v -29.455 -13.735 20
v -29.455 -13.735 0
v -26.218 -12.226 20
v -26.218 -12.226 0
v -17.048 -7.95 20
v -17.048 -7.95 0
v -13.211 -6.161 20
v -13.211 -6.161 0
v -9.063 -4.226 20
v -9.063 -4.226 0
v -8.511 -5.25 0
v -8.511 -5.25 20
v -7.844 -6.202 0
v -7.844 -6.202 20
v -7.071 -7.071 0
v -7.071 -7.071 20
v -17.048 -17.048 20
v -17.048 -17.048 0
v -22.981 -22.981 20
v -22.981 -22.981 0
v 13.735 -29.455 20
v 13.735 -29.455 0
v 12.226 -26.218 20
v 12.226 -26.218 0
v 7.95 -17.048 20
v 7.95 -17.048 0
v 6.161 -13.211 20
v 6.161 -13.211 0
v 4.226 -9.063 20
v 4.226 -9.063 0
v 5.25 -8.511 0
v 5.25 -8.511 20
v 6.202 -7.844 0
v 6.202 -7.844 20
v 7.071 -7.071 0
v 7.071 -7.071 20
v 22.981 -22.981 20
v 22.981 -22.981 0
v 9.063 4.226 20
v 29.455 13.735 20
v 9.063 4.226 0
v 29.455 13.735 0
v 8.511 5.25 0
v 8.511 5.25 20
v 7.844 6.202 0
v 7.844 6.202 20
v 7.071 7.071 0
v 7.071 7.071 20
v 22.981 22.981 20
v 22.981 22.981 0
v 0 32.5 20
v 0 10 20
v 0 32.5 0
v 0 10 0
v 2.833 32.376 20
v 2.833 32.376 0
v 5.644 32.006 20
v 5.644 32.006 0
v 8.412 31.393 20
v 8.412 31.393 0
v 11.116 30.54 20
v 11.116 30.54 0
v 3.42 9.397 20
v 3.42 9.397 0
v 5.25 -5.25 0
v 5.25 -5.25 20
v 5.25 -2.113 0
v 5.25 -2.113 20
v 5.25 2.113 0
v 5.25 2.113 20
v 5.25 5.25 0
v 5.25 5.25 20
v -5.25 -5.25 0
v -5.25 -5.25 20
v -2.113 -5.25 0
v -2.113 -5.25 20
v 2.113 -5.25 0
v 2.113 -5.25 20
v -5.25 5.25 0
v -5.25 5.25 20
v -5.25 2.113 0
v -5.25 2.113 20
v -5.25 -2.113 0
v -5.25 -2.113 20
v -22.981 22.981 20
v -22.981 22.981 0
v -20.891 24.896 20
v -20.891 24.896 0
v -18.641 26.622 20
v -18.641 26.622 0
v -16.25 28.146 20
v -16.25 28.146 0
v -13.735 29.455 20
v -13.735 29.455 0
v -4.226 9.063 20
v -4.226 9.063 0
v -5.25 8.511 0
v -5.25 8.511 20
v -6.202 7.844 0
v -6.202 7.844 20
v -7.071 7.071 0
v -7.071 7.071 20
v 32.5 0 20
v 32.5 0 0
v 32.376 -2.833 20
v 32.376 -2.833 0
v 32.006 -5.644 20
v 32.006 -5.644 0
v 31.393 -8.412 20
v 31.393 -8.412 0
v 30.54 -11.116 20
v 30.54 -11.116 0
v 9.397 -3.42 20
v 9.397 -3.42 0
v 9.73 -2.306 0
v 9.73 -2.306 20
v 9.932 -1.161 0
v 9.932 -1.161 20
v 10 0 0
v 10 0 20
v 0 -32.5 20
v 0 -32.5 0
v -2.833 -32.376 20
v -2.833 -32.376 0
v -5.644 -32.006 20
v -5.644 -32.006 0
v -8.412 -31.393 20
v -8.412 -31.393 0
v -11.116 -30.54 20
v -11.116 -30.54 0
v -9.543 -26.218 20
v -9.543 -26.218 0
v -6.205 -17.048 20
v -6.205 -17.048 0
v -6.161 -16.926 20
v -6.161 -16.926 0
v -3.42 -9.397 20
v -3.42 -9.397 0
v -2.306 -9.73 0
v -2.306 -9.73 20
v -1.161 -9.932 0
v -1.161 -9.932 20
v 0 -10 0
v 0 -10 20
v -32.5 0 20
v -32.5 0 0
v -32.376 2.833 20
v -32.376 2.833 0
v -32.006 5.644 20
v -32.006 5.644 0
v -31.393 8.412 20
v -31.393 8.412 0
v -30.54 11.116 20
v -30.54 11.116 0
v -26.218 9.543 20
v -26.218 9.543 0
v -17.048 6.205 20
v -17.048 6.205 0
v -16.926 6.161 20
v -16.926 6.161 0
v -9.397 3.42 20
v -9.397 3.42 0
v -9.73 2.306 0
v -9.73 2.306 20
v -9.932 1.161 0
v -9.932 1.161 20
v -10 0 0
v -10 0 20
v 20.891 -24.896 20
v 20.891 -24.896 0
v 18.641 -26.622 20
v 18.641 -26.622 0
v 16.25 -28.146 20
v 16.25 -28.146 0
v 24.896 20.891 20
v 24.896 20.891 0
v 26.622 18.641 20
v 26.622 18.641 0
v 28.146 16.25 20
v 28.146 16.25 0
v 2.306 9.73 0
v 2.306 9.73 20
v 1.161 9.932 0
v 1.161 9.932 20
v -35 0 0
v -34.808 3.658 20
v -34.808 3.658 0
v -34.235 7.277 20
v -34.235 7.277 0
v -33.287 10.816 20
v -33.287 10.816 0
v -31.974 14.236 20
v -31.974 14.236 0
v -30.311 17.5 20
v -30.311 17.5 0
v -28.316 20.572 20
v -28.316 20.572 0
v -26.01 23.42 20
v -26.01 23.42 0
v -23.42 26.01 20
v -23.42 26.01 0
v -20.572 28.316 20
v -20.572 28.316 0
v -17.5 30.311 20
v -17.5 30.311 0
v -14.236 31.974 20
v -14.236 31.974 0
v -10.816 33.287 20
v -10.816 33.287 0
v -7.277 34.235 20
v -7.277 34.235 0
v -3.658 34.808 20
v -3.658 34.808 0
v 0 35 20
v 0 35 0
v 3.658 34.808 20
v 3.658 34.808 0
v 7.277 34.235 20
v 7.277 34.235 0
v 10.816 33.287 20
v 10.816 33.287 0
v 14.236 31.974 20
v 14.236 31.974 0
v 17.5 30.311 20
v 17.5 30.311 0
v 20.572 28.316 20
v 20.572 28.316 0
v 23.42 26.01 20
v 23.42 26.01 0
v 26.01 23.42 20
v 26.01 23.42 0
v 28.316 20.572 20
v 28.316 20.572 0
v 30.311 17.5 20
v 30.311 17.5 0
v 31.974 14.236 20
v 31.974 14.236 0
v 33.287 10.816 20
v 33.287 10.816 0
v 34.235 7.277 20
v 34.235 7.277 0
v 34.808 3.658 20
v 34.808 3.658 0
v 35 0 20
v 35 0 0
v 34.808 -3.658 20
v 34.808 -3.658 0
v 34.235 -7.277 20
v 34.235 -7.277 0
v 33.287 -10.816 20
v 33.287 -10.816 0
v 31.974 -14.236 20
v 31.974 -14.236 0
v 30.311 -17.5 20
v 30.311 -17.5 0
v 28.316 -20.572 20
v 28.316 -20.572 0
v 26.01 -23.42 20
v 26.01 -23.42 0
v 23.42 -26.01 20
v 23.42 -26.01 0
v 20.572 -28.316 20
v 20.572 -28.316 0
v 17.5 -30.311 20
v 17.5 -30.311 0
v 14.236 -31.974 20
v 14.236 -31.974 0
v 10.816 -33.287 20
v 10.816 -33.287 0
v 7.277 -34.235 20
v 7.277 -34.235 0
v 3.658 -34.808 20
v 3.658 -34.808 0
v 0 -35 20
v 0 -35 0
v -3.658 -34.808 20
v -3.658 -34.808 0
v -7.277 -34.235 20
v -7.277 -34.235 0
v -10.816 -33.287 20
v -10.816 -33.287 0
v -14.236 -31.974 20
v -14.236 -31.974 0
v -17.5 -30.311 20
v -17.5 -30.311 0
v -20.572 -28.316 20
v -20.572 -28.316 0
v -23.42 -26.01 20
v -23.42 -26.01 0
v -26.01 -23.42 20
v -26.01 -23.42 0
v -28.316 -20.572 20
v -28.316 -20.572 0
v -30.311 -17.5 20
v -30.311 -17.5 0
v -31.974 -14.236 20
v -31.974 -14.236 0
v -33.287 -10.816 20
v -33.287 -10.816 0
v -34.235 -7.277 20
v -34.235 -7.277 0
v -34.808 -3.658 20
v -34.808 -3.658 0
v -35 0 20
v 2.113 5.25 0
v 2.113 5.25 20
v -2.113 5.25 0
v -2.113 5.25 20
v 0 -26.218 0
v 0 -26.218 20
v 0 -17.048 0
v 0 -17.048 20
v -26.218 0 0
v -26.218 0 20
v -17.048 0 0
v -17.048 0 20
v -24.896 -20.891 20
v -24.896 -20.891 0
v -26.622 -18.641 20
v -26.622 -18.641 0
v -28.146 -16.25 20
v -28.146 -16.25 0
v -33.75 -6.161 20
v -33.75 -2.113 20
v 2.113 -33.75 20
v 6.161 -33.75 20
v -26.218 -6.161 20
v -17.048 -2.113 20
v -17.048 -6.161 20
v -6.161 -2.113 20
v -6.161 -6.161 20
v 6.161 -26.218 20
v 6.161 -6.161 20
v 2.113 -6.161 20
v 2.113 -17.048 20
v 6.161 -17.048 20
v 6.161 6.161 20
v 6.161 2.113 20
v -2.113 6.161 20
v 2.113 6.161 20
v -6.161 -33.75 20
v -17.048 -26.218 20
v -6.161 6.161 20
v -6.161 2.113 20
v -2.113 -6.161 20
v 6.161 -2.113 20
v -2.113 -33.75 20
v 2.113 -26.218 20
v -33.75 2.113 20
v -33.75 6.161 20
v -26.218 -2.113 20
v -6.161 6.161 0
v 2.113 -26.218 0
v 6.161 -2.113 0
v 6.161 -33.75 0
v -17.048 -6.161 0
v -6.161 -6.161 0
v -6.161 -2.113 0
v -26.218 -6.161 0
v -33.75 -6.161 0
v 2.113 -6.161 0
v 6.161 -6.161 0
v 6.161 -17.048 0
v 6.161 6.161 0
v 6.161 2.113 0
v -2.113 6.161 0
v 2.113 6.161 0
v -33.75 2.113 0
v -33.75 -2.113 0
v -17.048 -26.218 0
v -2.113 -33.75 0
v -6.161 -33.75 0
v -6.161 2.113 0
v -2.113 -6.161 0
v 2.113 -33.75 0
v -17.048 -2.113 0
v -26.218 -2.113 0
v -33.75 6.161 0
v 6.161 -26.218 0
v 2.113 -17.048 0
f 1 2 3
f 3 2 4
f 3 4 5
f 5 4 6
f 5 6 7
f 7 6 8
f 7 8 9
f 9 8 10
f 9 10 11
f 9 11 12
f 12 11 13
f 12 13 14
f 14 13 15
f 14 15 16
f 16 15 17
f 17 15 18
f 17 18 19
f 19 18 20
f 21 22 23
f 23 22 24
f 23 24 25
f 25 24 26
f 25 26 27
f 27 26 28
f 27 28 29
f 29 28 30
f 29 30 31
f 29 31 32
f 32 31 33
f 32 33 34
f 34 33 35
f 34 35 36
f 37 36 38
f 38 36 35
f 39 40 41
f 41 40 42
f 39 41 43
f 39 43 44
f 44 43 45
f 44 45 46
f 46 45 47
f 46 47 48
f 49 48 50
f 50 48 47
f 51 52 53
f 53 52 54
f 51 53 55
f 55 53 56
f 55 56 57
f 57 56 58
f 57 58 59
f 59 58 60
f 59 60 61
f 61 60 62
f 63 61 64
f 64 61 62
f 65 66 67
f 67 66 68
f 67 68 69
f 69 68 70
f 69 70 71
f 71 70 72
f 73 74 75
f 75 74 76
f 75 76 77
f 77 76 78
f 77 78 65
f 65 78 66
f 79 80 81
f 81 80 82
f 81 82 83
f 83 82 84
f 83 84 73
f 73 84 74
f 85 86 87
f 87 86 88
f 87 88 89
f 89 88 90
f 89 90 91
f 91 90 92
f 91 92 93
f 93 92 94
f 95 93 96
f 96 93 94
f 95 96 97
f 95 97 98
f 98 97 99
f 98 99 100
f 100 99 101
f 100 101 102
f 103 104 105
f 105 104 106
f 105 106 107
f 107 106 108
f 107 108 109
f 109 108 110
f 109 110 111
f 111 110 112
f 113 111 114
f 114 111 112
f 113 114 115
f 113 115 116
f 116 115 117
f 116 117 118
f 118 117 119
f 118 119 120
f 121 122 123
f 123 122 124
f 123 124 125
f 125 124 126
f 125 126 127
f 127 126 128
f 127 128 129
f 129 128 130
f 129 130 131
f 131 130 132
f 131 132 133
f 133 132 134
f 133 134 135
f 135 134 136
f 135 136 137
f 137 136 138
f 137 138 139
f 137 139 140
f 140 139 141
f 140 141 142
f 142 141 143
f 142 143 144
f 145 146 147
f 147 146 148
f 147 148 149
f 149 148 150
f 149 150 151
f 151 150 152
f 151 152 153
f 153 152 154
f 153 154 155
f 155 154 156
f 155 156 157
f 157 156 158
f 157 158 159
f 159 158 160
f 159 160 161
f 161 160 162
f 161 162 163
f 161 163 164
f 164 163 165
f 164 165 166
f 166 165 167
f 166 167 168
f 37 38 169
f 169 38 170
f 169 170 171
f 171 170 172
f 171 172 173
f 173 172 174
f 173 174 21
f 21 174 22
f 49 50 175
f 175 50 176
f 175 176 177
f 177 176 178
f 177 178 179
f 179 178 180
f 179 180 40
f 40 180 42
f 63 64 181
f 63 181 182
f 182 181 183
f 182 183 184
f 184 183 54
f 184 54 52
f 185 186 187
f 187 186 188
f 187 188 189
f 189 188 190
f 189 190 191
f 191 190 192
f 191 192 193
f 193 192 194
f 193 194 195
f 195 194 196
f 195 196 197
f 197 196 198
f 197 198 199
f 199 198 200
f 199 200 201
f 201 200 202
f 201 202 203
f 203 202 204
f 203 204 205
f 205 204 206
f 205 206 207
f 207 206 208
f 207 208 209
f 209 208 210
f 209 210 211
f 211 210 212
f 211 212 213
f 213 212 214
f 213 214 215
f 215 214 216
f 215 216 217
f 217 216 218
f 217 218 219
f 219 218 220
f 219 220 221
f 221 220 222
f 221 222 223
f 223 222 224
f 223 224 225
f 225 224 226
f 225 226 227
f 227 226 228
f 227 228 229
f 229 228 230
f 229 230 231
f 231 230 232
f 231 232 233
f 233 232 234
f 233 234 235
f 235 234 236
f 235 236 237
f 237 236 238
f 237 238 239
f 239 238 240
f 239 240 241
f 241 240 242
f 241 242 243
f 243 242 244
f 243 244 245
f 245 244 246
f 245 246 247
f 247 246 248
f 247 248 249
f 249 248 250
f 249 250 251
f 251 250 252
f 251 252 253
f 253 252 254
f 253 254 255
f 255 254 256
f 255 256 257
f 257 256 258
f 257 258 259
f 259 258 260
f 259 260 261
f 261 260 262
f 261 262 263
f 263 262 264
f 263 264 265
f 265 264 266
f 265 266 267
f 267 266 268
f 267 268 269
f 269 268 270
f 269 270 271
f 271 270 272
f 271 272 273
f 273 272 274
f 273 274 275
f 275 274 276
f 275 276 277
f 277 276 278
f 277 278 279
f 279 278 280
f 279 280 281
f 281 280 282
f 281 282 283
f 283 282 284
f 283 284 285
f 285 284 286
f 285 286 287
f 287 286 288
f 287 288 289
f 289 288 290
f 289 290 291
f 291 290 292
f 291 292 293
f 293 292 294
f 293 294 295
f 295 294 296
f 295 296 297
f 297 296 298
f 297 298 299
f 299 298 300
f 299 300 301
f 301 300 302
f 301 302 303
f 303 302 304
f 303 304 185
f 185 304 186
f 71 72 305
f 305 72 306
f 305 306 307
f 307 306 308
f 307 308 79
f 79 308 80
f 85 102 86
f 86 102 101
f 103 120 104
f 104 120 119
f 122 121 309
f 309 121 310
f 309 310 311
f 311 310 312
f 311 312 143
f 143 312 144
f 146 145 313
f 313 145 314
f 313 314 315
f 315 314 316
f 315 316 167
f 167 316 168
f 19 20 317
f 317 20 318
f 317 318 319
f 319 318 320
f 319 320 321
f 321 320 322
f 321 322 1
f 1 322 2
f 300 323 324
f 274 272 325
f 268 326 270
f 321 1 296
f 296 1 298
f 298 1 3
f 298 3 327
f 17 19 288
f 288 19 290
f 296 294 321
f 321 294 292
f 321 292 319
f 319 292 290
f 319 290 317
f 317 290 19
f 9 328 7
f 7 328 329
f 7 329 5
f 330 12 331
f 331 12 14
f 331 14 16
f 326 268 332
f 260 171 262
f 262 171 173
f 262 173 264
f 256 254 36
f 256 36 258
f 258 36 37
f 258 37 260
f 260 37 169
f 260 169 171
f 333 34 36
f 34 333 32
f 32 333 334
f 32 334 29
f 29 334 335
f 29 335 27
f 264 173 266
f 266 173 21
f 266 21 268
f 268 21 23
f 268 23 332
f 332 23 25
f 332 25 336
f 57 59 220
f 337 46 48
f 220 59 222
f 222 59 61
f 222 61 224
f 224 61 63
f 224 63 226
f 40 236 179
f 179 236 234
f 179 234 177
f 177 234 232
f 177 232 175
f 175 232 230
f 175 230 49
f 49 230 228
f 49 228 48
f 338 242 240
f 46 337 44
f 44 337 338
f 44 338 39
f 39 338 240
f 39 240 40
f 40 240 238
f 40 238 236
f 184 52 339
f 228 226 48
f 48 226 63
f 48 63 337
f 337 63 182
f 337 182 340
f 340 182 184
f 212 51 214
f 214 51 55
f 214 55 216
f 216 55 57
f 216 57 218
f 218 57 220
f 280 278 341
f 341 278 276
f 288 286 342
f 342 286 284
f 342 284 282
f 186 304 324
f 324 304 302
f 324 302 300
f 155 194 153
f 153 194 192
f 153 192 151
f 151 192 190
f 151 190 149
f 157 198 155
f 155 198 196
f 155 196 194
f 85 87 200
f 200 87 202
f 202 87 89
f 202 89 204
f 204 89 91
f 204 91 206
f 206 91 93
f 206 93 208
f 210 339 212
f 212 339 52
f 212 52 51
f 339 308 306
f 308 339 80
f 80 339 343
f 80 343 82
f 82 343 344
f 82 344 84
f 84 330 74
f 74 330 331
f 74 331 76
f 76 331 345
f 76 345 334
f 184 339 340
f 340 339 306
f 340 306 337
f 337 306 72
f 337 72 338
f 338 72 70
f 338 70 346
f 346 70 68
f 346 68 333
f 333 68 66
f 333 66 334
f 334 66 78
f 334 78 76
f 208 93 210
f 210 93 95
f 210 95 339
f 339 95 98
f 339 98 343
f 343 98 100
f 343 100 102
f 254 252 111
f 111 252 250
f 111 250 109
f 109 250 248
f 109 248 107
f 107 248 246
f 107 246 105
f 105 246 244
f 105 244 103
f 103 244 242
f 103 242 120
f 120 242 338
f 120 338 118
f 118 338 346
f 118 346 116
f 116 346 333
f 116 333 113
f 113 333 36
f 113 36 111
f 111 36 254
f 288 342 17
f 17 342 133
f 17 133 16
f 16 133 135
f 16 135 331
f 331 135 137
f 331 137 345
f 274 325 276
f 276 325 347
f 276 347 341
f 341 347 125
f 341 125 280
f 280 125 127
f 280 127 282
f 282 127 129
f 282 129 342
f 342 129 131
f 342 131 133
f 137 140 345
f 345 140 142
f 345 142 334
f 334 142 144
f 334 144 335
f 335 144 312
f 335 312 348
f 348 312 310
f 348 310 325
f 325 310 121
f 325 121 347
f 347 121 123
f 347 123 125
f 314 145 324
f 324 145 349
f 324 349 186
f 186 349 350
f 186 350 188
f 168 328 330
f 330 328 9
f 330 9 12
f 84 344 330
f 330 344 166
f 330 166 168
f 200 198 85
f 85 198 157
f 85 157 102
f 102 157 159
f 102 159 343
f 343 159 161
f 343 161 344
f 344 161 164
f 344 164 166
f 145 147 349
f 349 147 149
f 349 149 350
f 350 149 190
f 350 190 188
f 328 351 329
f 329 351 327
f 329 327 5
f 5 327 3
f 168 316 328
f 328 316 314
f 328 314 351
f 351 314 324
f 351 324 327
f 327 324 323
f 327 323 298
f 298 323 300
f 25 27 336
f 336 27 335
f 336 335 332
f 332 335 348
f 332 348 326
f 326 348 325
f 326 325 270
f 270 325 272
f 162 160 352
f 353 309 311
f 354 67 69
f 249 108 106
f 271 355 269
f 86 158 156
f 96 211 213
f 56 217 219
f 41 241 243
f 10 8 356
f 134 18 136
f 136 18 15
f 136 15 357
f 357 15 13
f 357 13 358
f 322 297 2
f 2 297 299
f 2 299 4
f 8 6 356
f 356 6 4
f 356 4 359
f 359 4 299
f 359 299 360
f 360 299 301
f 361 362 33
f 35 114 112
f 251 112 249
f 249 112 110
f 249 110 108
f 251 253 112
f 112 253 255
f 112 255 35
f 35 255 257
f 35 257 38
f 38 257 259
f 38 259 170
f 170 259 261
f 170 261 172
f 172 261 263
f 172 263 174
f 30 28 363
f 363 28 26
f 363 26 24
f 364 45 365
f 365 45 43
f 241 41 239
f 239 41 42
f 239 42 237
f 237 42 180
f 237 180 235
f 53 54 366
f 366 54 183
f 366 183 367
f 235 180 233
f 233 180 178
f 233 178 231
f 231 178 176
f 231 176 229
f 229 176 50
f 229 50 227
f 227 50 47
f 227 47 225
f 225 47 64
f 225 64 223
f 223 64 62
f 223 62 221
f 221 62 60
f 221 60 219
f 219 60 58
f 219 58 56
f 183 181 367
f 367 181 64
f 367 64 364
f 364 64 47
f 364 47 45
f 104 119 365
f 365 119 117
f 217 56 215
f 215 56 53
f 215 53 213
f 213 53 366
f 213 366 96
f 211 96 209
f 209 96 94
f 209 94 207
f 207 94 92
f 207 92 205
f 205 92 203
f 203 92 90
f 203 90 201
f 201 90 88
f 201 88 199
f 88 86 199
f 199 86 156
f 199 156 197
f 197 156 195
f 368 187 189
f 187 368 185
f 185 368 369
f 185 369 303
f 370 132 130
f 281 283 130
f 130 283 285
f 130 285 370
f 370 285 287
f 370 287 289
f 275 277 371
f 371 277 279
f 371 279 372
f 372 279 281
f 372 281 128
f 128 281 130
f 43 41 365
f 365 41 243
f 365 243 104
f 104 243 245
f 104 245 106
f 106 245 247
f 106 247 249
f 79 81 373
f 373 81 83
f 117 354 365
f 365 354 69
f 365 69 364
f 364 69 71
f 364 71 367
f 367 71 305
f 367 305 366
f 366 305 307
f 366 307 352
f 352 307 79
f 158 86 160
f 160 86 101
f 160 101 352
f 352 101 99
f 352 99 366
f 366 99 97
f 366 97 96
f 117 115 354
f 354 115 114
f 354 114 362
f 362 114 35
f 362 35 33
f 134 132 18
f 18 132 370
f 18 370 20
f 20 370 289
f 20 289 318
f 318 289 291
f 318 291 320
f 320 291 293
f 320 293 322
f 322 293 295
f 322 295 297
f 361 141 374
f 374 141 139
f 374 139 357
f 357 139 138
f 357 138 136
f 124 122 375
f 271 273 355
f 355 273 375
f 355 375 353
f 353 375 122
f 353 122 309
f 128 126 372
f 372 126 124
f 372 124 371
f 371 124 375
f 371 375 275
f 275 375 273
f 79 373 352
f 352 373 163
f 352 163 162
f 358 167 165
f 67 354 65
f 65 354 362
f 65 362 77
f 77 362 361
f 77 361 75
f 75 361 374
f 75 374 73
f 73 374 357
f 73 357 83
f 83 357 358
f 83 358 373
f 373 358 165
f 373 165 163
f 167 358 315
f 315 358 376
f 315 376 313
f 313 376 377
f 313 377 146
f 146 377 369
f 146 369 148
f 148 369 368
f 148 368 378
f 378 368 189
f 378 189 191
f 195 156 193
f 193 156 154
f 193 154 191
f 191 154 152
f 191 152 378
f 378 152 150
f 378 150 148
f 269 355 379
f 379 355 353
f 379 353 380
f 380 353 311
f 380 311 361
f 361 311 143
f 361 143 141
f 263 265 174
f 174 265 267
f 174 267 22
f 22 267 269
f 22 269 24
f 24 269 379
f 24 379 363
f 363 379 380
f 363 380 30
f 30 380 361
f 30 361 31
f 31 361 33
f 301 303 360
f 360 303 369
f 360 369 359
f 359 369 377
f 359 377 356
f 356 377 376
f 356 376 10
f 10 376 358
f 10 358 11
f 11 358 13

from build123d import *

# Parameters (mm, degrees)
SKETCH_2_R      = 35
SKETCH_2_W      = 10.5
SKETCH_2_H      = 10.5
EXTRUDE_1_DEPTH = 20


with BuildPart() as part:
    # Эскиз2 → Бобышка-Вытянуть1 (new body)
    with BuildSketch(Plane.XY):
        Circle(SKETCH_2_R)
        with BuildLine():
            ThreePointArc((-30.540010176, 11.115654658), (-32.006251973, 5.643565774), (-32.5, 0))
            Line((-32.5, 0), (-10, 0))
            ThreePointArc((-10, 0), (-9.84807753, 1.736481777), (-9.396926208, 3.420201433))
            Line((-9.396926208, 3.420201433), (-30.540010176, 11.115654658))
        make_face(mode=Mode.SUBTRACT)
        with BuildLine():
            ThreePointArc((-11.115654658, -30.540010176), (-5.643565774, -32.006251973), (0, -32.5))
            Line((0, -32.5), (0, -10))
            ThreePointArc((0, -10), (-1.736481777, -9.84807753), (-3.420201433, -9.396926208))
            Line((-3.420201433, -9.396926208), (-11.115654658, -30.540010176))
        make_face(mode=Mode.SUBTRACT)
        with BuildLine():
            ThreePointArc((30.540010176, -11.115654658), (32.006251973, -5.643565774), (32.5, 0))
            Line((32.5, 0), (10, 0))
            ThreePointArc((10, 0), (9.84807753, -1.736481777), (9.396926208, -3.420201433))
            Line((9.396926208, -3.420201433), (30.540010176, -11.115654658))
        make_face(mode=Mode.SUBTRACT)
        with BuildLine():
            ThreePointArc((-13.735093507, 29.455003079), (-18.641234181, 26.622441439), (-22.980970389, 22.980970389))
            Line((-22.980970389, 22.980970389), (-7.071067812, 7.071067812))
            ThreePointArc((-7.071067812, 7.071067812), (-5.735764364, 8.191520443), (-4.226182617, 9.06307787))
            Line((-4.226182617, 9.06307787), (-13.735093507, 29.455003079))
        make_face(mode=Mode.SUBTRACT)
        Rectangle(SKETCH_2_W, SKETCH_2_H, mode=Mode.SUBTRACT)
        with BuildLine():
            Line((0, 10), (0, 32.5))
            ThreePointArc((0, 32.5), (5.643565774, 32.006251973), (11.115654658, 30.540010176))
            Line((11.115654658, 30.540010176), (3.420201433, 9.396926208))
            ThreePointArc((3.420201433, 9.396926208), (1.736481777, 9.84807753), (0, 10))
        make_face(mode=Mode.SUBTRACT)
        with BuildLine():
            Line((9.06307787, 4.226182617), (29.455003079, 13.735093507))
            ThreePointArc((29.455003079, 13.735093507), (26.622441439, 18.641234181), (22.980970389, 22.980970389))
            Line((22.980970389, 22.980970389), (7.071067812, 7.071067812))
            ThreePointArc((7.071067812, 7.071067812), (8.191520443, 5.735764364), (9.06307787, 4.226182617))
        make_face(mode=Mode.SUBTRACT)
        with BuildLine():
            Line((4.226182617, -9.06307787), (13.735093507, -29.455003079))
            ThreePointArc((13.735093507, -29.455003079), (18.641234181, -26.622441439), (22.980970389, -22.980970389))
            Line((22.980970389, -22.980970389), (7.071067812, -7.071067812))
            ThreePointArc((7.071067812, -7.071067812), (5.735764364, -8.191520443), (4.226182617, -9.06307787))
        make_face(mode=Mode.SUBTRACT)
        with BuildLine():
            Line((-9.06307787, -4.226182617), (-29.455003079, -13.735093507))
            ThreePointArc((-29.455003079, -13.735093507), (-26.622441439, -18.641234181), (-22.980970389, -22.980970389))
            Line((-22.980970389, -22.980970389), (-7.071067812, -7.071067812))
            ThreePointArc((-7.071067812, -7.071067812), (-8.191520443, -5.735764364), (-9.06307787, -4.226182617))
        make_face(mode=Mode.SUBTRACT)
    extrude(amount=EXTRUDE_1_DEPTH)


solid = part.part
